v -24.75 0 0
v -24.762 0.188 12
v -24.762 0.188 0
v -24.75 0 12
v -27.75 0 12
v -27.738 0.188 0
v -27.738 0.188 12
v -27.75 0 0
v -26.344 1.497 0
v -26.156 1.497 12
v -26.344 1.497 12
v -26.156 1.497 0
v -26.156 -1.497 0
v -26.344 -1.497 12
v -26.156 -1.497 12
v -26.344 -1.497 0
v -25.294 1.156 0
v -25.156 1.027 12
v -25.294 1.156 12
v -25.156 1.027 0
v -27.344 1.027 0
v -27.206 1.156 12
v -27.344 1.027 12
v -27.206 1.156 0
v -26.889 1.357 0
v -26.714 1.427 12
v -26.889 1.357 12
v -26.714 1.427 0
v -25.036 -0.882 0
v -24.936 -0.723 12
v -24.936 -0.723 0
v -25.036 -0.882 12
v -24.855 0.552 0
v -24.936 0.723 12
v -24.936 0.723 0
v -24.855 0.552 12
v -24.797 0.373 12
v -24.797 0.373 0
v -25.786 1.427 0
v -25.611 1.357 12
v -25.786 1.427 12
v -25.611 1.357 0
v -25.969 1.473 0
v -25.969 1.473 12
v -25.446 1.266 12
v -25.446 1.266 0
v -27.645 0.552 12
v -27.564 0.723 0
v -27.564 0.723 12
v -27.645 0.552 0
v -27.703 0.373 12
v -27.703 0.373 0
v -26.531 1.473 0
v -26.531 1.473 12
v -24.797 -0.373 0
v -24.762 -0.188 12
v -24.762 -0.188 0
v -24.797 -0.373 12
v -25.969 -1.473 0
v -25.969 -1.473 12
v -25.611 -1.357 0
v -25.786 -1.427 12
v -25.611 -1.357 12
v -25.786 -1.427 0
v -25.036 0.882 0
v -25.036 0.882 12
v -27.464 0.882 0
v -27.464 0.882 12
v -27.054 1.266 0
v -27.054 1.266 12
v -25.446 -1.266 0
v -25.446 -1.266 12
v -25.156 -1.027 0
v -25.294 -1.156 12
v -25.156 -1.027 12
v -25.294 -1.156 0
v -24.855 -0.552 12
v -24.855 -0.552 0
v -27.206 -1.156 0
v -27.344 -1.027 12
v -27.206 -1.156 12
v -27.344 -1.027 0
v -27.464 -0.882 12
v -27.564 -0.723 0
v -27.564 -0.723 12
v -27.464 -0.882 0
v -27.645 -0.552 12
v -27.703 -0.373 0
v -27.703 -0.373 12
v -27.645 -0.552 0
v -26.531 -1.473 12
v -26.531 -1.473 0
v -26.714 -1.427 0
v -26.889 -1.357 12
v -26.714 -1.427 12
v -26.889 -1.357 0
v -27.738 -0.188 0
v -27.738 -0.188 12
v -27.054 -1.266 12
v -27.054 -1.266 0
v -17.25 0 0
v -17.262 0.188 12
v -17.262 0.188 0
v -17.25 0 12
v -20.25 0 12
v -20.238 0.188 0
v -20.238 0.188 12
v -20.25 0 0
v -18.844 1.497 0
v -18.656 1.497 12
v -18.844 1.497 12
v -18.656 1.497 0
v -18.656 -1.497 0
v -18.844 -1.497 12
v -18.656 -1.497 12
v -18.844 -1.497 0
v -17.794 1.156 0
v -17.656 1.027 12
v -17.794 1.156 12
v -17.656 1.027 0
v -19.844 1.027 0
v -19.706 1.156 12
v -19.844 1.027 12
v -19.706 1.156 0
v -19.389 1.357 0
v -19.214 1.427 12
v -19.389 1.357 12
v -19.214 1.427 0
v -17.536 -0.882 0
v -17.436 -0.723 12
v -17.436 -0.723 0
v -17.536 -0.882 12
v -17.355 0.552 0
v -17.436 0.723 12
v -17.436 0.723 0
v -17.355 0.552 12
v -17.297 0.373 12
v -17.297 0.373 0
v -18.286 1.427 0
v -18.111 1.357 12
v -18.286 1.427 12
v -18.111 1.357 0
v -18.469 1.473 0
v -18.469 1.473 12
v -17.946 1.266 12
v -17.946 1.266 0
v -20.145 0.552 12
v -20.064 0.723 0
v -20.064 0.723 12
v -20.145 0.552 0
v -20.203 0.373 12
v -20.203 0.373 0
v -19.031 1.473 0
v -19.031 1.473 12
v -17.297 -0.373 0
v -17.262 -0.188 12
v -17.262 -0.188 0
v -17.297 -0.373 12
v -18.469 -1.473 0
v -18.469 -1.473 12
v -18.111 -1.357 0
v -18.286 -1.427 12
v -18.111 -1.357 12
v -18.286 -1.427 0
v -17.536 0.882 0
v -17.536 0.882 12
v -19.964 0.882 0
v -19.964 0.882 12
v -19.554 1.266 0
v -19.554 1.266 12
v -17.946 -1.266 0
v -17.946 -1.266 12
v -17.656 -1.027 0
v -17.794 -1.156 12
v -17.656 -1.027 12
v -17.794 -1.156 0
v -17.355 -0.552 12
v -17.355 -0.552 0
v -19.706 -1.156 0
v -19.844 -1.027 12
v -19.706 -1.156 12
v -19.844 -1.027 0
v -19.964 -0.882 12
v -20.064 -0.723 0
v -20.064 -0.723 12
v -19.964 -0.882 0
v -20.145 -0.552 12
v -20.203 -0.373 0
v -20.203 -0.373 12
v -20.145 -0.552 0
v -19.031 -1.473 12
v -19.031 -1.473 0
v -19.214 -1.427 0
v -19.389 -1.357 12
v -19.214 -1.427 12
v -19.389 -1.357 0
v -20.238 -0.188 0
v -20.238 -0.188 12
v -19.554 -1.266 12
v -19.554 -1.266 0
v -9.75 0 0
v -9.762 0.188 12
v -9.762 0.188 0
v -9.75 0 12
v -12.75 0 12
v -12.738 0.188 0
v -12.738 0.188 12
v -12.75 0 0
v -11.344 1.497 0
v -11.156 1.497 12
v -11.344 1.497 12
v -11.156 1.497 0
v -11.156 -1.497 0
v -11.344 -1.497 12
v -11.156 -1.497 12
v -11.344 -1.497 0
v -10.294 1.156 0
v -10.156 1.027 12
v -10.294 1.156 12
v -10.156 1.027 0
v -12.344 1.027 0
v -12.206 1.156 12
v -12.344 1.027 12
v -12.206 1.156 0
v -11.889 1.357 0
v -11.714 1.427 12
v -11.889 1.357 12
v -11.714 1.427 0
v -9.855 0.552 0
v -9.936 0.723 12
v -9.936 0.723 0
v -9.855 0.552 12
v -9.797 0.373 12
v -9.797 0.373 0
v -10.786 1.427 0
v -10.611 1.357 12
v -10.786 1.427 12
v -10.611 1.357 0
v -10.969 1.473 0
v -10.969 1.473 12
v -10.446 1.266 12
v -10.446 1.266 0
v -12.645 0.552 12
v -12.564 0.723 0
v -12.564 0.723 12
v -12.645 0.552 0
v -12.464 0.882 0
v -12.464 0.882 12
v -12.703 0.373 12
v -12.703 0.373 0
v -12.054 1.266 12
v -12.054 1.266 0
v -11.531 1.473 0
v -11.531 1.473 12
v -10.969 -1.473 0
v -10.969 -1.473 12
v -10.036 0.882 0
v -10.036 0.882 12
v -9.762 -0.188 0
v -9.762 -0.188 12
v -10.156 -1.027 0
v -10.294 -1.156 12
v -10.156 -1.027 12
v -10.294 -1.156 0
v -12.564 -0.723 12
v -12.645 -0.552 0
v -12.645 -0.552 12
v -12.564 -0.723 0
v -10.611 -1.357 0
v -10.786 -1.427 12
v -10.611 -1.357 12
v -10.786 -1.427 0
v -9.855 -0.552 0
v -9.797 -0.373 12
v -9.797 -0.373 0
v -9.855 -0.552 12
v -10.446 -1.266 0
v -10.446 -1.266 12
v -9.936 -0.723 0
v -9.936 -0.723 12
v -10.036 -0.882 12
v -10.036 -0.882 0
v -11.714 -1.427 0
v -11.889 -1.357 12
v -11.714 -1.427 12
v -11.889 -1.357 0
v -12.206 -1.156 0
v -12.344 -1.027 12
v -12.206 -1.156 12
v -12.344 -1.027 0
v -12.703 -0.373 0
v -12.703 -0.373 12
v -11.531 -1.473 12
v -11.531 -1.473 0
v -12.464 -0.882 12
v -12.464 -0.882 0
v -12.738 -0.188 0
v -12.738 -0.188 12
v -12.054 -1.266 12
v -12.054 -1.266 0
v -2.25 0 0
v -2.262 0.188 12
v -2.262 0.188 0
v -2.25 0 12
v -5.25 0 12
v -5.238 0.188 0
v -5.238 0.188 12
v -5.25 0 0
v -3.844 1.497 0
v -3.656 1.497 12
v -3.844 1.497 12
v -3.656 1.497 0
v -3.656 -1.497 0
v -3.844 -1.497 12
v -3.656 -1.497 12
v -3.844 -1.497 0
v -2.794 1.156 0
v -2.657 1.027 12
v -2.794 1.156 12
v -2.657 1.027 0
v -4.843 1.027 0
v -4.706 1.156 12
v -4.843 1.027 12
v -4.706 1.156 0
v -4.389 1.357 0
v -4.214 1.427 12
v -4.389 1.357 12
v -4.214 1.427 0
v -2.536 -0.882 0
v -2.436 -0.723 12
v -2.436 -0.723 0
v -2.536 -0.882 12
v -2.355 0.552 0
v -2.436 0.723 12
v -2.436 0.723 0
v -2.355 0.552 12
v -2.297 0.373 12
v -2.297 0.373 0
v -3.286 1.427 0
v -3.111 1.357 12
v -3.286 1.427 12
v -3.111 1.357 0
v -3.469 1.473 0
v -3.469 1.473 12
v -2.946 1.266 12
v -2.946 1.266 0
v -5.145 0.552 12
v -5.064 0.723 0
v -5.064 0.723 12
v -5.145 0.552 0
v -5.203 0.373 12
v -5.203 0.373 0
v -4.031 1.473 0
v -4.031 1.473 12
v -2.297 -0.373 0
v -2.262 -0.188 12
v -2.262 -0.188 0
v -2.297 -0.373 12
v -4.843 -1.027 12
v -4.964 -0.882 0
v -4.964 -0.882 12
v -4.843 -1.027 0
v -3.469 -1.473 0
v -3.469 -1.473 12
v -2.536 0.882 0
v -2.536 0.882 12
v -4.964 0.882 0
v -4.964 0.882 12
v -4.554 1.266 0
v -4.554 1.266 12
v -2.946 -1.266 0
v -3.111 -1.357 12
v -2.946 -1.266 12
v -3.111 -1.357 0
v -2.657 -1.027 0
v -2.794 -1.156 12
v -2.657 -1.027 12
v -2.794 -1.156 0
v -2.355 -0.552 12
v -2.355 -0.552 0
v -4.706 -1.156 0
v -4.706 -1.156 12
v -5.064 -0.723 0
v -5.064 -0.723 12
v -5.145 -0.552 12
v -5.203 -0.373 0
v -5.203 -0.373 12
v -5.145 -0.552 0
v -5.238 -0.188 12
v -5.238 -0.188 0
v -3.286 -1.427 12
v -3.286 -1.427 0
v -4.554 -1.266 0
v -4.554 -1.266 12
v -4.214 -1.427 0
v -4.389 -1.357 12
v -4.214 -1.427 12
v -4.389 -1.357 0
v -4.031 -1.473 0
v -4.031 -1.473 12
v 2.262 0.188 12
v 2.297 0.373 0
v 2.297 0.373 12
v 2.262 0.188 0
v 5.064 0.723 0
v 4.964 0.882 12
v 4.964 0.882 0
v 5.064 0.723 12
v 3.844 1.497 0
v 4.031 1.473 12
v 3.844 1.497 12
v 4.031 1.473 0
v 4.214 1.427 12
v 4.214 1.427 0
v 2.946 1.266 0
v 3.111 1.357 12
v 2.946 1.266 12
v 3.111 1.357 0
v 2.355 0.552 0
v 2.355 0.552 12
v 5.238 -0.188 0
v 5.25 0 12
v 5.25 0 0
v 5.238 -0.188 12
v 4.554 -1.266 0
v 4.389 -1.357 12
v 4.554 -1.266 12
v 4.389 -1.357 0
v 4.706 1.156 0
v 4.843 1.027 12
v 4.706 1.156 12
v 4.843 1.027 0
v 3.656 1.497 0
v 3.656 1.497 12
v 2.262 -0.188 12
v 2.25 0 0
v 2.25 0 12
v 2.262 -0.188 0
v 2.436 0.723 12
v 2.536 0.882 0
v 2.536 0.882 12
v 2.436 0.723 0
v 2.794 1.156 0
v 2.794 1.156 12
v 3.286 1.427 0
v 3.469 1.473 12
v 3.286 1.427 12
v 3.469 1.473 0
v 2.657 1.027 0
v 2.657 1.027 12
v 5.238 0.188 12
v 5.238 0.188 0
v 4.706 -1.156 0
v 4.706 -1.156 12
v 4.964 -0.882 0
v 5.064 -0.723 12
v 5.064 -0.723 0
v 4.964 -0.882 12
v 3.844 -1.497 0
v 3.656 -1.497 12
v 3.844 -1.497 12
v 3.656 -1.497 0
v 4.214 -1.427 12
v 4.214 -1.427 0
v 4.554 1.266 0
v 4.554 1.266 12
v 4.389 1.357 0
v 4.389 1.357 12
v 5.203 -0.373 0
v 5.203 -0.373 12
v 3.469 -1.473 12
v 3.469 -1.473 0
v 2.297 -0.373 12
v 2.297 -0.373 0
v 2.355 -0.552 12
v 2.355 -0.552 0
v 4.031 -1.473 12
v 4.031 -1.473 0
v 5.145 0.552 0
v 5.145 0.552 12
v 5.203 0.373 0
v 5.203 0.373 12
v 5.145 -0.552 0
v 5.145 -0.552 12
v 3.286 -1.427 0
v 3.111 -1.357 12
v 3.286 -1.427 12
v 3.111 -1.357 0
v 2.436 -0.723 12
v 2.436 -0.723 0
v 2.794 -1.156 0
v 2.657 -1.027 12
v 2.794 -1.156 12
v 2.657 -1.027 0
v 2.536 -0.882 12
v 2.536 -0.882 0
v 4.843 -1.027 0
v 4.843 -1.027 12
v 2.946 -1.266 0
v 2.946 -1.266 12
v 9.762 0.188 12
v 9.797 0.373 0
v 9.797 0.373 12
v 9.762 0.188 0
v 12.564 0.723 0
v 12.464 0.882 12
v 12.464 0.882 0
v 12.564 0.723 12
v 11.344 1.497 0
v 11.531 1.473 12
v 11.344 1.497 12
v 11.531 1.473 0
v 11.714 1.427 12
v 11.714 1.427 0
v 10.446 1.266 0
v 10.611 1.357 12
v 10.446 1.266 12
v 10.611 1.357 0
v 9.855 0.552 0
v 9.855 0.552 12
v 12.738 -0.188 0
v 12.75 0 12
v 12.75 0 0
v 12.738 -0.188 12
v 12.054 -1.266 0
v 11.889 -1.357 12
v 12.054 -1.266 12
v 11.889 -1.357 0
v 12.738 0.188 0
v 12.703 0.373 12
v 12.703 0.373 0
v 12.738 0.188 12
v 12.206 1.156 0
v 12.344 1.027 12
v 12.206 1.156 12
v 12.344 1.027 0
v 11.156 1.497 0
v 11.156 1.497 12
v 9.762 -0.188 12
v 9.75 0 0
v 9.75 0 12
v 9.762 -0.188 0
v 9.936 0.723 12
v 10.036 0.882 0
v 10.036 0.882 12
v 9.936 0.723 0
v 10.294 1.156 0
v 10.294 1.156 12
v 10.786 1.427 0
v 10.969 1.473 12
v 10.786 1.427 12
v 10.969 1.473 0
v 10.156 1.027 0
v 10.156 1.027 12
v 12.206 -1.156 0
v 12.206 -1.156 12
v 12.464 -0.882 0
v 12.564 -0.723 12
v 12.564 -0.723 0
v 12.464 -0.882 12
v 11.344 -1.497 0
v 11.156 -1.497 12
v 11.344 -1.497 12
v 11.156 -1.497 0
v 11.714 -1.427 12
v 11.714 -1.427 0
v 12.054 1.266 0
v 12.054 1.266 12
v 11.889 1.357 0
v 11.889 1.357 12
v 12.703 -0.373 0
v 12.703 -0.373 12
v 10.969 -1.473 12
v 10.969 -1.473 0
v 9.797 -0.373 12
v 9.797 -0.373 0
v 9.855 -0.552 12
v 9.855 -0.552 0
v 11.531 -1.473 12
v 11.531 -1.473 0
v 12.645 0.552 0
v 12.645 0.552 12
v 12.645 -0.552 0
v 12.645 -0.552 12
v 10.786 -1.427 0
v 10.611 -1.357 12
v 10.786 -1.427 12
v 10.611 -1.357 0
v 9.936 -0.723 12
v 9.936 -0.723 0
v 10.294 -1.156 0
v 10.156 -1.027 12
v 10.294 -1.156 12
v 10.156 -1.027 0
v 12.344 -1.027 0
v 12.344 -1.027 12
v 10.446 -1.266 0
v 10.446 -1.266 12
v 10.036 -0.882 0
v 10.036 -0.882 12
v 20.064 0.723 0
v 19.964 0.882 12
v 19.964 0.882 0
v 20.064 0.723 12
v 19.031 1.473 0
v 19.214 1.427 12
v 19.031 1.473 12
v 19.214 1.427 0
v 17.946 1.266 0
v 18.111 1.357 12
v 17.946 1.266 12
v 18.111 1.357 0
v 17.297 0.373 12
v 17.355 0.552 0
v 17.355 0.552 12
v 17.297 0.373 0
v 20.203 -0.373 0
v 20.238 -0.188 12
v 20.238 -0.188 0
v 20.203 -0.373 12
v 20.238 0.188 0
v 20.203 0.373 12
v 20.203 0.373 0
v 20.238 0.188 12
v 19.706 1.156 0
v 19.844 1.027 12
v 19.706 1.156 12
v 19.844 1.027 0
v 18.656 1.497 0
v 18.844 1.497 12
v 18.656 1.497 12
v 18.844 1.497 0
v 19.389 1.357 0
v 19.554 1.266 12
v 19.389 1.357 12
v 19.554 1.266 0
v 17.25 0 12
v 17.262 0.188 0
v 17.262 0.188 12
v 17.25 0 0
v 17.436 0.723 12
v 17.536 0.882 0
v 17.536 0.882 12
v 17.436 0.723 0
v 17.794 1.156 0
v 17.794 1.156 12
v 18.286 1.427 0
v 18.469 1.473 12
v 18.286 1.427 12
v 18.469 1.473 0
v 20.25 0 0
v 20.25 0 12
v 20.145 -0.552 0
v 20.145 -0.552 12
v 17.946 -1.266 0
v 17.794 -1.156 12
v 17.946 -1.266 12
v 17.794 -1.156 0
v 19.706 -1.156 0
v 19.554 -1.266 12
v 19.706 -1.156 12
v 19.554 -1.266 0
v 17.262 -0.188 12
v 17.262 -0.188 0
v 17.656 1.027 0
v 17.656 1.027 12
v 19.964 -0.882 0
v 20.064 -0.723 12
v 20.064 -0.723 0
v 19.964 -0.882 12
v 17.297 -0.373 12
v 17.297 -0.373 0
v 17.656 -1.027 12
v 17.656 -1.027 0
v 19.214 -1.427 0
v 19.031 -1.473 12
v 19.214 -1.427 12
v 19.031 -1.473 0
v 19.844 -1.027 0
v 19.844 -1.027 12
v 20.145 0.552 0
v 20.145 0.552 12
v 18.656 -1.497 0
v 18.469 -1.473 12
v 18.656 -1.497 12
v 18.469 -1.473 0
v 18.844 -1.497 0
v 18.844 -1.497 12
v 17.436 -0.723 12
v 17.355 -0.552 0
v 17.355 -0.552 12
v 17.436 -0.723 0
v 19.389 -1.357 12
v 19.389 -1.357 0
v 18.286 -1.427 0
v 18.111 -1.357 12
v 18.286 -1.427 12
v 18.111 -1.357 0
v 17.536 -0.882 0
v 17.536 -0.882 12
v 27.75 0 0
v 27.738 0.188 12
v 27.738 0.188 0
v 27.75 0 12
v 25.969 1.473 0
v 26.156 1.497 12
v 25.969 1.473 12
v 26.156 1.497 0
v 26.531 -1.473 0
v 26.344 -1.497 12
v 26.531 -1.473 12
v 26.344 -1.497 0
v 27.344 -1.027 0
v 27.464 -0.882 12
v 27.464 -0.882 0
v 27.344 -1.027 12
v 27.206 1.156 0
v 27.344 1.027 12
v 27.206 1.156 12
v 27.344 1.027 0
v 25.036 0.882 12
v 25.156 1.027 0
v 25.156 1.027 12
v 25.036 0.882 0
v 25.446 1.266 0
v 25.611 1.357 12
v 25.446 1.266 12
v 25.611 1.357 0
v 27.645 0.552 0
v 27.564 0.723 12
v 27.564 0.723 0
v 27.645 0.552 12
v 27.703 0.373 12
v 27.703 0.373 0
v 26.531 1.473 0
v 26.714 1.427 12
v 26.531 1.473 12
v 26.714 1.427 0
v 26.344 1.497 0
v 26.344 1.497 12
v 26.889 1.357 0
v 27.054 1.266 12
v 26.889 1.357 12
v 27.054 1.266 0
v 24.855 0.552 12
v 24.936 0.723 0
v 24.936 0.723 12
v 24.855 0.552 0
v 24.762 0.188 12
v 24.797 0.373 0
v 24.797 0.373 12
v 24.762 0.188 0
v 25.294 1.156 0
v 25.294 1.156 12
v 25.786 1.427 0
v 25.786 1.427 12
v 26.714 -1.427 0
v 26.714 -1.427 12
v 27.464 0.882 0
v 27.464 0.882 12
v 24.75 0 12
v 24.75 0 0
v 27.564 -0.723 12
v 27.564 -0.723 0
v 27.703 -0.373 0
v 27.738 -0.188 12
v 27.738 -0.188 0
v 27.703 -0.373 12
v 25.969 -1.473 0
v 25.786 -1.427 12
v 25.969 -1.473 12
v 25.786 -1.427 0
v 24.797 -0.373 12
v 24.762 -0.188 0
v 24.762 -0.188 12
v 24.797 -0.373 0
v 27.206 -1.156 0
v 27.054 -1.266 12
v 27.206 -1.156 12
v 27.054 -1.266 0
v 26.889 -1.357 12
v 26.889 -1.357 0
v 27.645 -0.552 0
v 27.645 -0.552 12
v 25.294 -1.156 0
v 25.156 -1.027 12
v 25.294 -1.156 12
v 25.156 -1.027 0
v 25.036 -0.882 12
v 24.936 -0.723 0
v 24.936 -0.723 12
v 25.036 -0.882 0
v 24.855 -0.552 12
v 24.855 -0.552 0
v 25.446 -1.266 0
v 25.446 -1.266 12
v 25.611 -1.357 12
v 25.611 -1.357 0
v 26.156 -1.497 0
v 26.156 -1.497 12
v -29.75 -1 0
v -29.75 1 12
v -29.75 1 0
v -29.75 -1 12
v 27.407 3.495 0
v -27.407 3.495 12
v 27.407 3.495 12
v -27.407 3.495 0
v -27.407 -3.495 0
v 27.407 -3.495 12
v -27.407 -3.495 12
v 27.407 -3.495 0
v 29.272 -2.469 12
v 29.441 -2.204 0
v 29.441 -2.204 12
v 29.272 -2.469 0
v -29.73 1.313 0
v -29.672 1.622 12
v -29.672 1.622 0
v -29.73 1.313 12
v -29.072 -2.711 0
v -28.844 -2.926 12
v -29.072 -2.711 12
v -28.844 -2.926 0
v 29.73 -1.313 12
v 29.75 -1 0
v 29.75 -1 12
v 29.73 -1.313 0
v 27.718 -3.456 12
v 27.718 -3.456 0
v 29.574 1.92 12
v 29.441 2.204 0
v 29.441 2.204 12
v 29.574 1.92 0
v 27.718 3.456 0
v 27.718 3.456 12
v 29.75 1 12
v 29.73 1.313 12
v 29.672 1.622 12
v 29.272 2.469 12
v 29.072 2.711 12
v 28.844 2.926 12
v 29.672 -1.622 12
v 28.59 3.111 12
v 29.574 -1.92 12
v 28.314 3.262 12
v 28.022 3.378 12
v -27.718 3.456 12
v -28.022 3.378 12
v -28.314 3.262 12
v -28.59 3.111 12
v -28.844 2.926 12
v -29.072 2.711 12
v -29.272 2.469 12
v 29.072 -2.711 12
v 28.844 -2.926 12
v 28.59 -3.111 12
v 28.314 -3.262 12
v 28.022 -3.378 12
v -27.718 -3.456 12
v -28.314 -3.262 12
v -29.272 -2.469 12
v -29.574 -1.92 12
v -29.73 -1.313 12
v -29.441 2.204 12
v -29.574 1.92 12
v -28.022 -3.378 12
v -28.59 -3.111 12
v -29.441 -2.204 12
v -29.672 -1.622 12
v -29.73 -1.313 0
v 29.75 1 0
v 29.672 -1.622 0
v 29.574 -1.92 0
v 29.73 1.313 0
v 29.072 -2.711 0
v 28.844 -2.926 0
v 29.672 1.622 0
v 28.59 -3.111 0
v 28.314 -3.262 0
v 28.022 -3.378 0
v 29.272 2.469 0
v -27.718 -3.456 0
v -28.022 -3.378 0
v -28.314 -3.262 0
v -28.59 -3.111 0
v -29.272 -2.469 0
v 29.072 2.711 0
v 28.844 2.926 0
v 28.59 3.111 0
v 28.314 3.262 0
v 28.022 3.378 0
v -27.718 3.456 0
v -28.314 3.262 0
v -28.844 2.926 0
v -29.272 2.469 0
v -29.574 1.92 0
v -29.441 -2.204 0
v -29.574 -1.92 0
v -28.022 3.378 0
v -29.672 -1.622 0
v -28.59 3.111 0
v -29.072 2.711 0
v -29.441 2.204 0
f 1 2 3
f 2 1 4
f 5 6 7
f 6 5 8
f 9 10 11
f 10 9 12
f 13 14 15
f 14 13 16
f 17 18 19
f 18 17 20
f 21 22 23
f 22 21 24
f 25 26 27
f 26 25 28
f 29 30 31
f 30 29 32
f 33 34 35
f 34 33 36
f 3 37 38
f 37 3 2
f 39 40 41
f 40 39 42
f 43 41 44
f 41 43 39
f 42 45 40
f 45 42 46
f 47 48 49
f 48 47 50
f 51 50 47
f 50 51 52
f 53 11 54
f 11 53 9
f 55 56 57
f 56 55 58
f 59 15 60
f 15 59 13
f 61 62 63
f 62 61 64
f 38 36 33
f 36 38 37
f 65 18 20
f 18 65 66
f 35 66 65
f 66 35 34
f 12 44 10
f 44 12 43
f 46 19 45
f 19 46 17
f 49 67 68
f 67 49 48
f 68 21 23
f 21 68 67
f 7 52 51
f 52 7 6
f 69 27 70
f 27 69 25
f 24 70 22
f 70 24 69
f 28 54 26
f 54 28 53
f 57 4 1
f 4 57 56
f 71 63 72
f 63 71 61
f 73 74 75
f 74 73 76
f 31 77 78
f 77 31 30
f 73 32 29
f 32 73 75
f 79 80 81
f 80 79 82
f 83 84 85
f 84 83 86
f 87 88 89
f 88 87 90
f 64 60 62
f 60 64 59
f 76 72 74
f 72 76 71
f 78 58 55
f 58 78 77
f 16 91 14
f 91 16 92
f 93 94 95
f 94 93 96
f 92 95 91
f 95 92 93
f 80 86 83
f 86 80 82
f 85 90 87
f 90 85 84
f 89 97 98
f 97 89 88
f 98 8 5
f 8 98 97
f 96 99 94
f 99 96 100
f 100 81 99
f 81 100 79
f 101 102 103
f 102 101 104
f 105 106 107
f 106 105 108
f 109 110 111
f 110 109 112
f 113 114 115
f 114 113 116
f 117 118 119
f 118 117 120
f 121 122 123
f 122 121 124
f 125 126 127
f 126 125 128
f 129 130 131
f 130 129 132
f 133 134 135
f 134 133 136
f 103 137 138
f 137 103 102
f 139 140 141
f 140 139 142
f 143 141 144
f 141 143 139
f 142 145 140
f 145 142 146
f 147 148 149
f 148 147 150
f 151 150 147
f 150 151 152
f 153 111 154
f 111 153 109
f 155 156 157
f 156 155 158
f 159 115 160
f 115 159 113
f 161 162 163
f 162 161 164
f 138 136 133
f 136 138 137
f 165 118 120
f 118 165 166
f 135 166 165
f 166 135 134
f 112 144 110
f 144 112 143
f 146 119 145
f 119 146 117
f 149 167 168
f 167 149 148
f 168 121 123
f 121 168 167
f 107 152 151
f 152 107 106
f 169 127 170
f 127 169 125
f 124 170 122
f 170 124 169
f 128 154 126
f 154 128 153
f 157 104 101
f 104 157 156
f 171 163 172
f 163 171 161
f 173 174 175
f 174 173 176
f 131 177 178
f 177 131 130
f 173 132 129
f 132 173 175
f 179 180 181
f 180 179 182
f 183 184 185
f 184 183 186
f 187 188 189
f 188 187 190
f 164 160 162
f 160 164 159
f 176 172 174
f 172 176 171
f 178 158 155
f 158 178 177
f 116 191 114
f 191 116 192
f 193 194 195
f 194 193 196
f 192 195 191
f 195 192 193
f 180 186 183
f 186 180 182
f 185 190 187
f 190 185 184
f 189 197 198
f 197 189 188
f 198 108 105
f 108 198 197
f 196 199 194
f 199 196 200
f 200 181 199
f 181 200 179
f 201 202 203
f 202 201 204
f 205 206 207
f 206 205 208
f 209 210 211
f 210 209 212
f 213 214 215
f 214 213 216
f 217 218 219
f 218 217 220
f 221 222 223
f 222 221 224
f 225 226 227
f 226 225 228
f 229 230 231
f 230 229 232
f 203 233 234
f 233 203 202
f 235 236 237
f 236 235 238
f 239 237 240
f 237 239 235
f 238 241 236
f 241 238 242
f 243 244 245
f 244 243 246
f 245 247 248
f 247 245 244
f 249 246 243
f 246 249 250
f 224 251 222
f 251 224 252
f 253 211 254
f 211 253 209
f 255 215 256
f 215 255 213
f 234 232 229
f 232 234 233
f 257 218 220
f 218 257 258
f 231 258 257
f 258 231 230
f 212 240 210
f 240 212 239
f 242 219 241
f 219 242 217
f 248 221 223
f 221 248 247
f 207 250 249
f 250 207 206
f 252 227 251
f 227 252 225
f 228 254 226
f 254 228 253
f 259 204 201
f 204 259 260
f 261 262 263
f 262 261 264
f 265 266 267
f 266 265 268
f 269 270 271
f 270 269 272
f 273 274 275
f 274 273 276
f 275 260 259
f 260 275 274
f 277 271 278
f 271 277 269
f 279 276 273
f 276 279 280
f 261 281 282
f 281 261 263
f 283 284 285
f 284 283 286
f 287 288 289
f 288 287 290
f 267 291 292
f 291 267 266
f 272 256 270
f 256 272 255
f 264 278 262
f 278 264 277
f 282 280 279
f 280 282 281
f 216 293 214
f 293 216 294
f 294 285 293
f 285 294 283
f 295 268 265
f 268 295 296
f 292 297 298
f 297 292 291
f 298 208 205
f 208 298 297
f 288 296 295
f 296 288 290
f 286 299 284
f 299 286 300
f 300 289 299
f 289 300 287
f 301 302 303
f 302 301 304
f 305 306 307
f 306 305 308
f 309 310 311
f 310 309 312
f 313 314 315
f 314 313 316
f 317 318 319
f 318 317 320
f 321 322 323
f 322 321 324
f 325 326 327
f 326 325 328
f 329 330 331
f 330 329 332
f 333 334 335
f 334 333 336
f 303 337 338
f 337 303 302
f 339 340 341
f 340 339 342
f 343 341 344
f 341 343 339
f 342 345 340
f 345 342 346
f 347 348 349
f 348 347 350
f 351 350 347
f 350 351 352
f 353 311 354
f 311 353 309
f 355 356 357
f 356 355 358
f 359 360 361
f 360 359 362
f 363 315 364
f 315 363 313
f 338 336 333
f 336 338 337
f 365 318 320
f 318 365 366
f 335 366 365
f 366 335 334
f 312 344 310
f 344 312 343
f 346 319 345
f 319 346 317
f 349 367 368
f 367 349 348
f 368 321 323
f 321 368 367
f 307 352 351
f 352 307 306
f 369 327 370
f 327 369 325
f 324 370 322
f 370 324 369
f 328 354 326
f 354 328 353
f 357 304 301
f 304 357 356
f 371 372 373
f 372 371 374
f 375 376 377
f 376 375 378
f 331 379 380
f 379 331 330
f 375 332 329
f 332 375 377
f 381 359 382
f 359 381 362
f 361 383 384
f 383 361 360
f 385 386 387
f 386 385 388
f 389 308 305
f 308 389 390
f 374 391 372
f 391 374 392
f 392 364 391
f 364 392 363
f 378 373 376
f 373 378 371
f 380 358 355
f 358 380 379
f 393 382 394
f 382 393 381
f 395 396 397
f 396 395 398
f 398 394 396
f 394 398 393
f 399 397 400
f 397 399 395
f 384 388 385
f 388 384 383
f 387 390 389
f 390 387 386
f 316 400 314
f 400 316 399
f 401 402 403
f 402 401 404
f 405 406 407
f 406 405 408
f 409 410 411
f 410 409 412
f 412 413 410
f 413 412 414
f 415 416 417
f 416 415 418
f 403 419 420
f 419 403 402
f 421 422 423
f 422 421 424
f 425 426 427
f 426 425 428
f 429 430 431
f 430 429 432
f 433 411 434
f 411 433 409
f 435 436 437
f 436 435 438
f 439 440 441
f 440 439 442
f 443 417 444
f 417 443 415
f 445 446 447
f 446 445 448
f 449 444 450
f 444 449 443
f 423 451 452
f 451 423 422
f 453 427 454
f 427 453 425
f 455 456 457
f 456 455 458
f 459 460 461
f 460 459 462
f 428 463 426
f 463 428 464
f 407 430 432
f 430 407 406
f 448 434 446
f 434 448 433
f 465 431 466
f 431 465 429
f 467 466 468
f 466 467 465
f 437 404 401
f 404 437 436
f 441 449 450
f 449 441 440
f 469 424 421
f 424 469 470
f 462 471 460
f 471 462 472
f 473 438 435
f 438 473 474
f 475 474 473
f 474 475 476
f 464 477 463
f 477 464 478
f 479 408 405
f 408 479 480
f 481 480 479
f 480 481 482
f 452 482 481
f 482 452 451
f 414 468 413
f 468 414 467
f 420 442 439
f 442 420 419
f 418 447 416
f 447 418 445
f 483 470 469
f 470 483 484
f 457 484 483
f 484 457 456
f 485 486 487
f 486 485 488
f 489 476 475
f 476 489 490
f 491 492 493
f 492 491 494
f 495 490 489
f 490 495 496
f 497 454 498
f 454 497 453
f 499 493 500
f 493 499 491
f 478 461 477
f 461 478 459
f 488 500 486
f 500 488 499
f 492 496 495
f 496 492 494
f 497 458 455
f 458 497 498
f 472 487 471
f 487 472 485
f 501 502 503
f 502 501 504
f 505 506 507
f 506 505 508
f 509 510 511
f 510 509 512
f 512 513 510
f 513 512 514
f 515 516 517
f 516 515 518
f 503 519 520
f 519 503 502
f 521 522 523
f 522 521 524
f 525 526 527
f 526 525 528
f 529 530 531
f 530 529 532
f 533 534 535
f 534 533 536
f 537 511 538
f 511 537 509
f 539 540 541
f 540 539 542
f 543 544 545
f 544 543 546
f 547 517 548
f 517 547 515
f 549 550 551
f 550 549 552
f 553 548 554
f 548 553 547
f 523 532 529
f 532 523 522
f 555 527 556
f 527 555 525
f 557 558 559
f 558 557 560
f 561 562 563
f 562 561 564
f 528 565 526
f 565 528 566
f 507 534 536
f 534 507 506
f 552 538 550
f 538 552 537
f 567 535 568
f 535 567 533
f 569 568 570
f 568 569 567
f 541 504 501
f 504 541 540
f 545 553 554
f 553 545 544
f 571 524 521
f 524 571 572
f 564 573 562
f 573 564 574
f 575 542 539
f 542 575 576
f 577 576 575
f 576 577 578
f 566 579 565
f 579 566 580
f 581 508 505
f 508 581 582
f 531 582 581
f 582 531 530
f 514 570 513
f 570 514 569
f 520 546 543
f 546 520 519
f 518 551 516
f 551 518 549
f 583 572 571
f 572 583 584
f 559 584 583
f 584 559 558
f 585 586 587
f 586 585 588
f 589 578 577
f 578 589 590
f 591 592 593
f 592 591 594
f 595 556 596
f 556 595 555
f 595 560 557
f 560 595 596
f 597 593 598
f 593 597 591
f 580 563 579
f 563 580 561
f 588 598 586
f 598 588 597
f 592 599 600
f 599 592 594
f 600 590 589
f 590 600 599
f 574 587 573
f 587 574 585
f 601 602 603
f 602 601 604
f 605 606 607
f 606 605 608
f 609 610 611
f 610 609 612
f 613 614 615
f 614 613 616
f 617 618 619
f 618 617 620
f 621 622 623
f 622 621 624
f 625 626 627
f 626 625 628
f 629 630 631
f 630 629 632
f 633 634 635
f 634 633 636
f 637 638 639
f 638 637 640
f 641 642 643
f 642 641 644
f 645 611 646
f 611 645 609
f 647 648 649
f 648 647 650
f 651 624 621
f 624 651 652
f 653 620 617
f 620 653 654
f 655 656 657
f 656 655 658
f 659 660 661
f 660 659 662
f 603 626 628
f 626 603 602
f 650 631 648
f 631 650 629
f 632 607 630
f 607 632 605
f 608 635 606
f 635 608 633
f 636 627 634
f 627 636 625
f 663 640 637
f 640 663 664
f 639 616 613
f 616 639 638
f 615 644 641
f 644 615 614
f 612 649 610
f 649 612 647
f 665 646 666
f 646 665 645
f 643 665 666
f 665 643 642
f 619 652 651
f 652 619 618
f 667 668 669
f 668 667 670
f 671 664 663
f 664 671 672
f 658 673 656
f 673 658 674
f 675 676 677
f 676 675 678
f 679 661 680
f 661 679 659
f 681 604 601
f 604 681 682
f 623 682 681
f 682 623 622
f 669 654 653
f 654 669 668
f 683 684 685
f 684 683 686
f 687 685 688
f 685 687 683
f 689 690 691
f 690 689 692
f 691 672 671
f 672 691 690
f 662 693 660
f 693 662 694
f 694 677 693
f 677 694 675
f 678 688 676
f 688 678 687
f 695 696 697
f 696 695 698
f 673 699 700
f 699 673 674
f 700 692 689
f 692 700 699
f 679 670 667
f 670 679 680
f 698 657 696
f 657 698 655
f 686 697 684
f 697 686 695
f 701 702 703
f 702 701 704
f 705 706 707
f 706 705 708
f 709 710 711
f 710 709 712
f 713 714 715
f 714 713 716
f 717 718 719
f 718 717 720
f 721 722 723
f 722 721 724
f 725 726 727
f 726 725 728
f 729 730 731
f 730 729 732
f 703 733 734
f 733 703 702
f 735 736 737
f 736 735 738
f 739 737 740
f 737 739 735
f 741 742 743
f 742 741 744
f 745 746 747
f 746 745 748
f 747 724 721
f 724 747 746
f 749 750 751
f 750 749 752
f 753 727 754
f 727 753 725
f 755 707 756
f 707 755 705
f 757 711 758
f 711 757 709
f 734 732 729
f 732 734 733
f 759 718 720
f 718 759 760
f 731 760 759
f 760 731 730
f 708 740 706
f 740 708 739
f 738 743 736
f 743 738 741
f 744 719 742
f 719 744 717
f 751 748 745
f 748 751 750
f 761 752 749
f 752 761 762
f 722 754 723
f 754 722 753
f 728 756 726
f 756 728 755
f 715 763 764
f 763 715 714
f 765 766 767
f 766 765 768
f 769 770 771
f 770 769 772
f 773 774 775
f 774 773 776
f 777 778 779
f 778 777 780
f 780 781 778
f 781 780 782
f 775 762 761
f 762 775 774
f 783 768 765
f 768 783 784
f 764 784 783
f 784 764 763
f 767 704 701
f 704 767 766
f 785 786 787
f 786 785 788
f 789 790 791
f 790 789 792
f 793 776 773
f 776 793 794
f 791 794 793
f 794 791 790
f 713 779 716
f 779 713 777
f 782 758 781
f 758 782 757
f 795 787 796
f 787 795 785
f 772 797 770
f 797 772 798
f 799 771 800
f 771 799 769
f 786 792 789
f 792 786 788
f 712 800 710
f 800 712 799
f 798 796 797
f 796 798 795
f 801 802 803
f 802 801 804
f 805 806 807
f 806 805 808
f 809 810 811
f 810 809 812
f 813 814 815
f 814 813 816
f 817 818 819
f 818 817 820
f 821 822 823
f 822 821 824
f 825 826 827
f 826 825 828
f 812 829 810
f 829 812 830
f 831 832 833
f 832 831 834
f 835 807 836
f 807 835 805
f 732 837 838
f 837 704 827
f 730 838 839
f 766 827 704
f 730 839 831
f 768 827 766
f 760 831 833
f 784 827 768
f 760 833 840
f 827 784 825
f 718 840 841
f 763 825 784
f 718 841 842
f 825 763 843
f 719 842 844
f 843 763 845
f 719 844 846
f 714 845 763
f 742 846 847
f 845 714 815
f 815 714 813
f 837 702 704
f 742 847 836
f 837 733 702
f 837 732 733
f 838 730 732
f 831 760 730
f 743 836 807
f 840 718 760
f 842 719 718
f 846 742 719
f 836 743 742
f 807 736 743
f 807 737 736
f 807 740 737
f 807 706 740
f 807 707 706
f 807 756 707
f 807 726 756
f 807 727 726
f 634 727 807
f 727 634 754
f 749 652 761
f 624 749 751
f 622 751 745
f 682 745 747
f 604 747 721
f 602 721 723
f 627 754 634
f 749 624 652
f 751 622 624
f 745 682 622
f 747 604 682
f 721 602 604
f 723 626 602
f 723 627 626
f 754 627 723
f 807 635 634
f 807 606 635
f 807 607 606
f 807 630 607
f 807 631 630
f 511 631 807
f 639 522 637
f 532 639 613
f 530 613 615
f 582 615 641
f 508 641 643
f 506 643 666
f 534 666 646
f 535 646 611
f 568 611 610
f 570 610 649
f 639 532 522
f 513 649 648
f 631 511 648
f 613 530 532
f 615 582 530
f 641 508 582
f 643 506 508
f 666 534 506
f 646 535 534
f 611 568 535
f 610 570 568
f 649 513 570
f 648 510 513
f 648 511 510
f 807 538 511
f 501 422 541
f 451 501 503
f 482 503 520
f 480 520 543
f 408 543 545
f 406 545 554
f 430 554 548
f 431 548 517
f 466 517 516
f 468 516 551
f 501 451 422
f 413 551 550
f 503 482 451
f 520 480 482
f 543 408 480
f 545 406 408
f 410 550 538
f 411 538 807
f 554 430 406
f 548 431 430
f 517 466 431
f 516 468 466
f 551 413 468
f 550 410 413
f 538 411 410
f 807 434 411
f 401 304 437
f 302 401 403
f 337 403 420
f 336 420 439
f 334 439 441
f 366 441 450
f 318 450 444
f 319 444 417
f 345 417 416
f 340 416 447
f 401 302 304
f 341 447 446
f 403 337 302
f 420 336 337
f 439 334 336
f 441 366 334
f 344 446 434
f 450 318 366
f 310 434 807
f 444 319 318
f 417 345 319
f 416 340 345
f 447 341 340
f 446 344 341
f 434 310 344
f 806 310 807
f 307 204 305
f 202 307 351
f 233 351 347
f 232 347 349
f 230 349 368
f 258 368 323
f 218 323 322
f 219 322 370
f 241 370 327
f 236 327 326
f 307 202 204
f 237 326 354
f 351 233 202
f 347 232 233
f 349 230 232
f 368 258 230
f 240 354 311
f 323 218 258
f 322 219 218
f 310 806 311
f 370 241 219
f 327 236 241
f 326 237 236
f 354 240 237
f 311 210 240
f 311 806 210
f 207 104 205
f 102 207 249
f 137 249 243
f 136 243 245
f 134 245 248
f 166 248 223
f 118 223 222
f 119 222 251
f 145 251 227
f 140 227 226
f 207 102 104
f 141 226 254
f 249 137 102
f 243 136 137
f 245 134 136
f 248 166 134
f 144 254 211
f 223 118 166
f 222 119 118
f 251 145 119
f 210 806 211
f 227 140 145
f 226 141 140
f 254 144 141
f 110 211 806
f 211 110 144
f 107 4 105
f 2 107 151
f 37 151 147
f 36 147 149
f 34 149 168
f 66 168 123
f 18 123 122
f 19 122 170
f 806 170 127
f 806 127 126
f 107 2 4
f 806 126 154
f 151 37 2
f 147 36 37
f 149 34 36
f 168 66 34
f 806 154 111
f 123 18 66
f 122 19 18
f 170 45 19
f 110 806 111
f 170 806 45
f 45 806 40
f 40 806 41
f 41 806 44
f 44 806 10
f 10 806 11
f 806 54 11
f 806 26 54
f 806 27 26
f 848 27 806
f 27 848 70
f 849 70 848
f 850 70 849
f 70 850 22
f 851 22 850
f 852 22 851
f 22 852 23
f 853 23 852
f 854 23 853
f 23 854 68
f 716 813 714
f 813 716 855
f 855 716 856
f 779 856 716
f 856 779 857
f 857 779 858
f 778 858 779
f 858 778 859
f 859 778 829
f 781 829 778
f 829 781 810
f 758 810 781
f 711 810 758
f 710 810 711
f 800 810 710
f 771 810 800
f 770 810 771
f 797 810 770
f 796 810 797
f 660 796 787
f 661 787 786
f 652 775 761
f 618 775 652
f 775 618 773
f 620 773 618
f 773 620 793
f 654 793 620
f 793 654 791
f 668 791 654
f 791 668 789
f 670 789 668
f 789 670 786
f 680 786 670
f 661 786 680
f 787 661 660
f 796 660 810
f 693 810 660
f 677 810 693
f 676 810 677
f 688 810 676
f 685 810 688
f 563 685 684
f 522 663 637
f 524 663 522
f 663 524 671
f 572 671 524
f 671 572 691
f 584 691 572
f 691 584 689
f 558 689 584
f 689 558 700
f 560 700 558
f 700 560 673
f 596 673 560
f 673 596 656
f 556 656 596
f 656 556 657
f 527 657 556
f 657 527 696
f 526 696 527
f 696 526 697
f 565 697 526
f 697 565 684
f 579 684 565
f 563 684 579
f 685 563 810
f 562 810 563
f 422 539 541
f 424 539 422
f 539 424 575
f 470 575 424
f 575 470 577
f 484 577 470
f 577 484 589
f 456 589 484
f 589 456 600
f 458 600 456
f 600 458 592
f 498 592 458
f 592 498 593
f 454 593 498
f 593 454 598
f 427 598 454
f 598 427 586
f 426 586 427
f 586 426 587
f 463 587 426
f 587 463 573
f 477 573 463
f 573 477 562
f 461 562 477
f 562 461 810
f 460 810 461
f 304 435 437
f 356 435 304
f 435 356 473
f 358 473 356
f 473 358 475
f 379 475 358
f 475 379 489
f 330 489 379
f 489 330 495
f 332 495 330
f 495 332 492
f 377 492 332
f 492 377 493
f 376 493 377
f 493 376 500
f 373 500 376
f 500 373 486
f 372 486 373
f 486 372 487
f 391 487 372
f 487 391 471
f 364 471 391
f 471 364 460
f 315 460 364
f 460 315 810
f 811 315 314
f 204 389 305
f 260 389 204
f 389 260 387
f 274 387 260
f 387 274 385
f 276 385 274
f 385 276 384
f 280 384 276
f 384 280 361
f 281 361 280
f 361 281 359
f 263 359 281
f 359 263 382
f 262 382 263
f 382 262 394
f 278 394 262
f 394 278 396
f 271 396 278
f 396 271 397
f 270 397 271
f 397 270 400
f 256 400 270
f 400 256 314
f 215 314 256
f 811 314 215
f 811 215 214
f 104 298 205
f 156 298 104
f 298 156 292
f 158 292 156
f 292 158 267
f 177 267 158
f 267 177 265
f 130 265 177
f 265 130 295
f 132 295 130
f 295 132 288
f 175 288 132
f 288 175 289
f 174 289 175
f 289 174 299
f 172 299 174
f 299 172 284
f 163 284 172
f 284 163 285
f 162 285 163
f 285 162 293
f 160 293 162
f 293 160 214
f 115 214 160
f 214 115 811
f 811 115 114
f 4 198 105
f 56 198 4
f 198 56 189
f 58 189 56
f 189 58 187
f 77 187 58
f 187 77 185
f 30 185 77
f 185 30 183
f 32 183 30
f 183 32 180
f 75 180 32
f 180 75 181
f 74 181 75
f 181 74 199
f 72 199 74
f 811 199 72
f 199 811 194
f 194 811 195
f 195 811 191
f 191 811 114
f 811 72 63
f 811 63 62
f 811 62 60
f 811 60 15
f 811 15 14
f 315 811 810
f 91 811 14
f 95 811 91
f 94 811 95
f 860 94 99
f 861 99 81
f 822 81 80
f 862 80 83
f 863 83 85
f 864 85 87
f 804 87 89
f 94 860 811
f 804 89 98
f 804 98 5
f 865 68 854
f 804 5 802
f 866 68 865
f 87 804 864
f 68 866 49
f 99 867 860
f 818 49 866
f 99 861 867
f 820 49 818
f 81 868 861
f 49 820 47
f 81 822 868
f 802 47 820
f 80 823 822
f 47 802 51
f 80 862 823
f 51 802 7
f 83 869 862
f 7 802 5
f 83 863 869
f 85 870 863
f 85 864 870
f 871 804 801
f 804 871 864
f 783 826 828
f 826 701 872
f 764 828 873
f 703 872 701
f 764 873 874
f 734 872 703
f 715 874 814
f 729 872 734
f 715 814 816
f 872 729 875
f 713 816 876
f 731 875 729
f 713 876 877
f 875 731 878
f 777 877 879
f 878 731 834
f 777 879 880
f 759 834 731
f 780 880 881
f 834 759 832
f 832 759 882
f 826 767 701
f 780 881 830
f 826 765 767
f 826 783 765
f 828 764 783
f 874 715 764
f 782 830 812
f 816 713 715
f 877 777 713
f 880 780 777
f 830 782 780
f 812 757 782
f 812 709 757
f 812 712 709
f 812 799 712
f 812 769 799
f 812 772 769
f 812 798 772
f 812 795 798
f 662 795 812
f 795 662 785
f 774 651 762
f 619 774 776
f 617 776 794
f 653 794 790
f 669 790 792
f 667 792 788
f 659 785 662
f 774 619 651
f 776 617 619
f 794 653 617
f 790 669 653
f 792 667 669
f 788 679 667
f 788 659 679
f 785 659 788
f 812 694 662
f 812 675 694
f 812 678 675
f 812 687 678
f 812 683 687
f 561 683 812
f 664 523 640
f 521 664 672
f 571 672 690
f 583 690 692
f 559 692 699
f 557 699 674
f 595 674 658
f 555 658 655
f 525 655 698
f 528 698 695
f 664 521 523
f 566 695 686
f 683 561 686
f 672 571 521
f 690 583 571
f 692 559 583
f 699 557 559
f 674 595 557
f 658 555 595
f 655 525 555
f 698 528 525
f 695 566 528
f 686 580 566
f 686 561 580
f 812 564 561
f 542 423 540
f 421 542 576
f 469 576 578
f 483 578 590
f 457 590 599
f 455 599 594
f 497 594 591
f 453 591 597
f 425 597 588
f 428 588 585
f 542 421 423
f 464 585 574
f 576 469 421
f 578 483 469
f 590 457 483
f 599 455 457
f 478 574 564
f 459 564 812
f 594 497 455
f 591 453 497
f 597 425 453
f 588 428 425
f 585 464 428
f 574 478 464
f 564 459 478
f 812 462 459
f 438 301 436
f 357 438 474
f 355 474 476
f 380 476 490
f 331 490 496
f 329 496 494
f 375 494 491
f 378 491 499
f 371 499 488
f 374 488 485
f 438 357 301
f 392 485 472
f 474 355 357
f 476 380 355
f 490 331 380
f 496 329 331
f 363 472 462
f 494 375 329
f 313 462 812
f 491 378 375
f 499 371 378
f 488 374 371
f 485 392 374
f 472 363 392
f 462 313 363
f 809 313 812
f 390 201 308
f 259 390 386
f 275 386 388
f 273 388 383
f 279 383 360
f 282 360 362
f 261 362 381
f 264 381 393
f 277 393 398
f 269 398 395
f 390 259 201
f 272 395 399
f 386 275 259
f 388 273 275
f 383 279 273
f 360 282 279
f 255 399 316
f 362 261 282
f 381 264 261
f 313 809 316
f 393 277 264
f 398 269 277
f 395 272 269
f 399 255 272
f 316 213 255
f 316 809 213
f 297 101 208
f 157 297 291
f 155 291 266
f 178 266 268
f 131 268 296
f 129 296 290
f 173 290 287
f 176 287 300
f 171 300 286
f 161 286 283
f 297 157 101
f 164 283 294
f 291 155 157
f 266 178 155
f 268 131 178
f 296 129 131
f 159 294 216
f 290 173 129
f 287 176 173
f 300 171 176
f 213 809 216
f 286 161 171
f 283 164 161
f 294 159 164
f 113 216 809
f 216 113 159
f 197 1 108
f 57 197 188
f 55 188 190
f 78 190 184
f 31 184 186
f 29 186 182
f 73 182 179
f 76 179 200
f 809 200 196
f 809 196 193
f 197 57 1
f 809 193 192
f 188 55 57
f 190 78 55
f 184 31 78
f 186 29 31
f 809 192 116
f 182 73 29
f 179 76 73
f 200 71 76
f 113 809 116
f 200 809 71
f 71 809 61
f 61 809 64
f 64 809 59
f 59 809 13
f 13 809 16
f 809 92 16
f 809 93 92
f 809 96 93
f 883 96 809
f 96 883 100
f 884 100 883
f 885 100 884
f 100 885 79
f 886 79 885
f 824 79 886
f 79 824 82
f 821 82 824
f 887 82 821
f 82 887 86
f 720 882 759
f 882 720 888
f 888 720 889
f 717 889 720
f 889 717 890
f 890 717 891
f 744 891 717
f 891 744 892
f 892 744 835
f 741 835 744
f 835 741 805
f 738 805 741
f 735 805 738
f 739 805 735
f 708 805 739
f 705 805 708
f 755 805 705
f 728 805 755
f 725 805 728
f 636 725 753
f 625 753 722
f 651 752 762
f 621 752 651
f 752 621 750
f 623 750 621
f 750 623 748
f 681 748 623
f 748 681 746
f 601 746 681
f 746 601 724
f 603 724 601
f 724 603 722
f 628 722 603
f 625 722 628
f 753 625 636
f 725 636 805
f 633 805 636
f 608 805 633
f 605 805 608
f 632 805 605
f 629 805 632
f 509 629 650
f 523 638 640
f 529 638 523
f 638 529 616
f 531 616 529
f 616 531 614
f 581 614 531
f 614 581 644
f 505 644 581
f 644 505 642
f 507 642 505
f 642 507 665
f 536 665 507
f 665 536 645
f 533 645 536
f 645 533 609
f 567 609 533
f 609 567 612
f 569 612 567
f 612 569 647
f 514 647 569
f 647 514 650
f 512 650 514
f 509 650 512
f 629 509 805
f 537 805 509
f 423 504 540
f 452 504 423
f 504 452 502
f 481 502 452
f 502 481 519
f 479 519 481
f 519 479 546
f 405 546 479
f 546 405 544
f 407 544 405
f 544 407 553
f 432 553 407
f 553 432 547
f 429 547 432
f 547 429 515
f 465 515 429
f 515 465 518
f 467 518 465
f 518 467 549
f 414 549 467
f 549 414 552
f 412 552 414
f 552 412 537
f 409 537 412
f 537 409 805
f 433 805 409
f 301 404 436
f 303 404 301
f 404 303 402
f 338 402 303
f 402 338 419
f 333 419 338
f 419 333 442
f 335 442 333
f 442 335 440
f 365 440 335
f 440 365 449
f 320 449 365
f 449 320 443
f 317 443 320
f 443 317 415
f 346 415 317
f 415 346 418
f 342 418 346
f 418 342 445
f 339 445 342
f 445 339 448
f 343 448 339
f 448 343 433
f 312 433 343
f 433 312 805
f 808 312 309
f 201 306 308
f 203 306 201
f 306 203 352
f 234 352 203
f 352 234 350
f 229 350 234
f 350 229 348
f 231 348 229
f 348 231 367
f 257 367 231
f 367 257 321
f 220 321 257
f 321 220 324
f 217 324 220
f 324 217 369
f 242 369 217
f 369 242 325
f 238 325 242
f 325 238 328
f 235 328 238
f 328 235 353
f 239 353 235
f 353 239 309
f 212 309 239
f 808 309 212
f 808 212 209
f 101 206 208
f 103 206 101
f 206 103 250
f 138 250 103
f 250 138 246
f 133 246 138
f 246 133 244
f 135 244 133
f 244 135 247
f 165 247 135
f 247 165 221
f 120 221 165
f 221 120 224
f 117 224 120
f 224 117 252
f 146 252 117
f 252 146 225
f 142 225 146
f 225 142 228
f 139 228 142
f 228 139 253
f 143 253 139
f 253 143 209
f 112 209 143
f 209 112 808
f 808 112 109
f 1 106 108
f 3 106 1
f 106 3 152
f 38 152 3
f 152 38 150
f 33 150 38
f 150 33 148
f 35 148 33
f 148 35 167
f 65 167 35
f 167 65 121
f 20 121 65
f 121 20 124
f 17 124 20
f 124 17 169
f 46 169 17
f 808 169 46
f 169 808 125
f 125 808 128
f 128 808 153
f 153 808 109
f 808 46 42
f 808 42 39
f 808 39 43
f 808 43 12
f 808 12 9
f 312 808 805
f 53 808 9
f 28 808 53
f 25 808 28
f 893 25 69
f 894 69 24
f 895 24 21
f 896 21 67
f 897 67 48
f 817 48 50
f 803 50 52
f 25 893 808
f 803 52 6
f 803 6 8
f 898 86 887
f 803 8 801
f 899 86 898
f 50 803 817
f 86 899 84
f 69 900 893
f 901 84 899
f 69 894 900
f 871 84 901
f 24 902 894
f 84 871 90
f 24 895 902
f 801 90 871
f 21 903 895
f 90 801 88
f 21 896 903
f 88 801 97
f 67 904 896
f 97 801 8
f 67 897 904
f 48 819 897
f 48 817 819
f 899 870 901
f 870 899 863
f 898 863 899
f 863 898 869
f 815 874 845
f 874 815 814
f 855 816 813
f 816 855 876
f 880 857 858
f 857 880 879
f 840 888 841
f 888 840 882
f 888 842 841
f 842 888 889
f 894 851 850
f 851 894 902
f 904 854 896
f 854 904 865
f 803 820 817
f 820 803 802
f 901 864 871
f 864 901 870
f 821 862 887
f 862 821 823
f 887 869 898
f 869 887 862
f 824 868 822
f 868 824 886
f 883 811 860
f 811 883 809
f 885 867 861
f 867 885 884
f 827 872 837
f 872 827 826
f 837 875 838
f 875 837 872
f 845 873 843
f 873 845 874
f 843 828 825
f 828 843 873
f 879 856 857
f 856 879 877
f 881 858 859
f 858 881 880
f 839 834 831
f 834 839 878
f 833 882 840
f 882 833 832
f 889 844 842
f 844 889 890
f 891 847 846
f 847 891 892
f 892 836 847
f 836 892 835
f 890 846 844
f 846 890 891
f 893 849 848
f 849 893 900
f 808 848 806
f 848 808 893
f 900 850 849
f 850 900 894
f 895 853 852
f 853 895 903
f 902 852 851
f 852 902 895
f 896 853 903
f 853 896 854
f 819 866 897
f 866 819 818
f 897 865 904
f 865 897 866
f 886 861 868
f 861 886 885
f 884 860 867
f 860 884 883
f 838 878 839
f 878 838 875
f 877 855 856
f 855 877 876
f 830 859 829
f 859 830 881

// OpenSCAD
$fn = 50;


difference() {
	union() {
		translate(v = [0, 0, 0]) {
			rotate(a = [0, 0, 0]) {
				hull() {
					translate(v = [-27.2500000000, 1.0000000000, 0]) {
						rotate(a = [0, 0, 0]) {
							translate(v = [0, 0, 0]) {
								rotate(a = [0, 0, 0]) {
									cylinder(h = 12, r = 2.5000000000);
								}
							}
						}
					}
					translate(v = [27.2500000000, 1.0000000000, 0]) {
						rotate(a = [0, 0, 0]) {
							translate(v = [0, 0, 0]) {
								rotate(a = [0, 0, 0]) {
									cylinder(h = 12, r = 2.5000000000);
								}
							}
						}
					}
					translate(v = [-27.2500000000, -1.0000000000, 0]) {
						rotate(a = [0, 0, 0]) {
							translate(v = [0, 0, 0]) {
								rotate(a = [0, 0, 0]) {
									cylinder(h = 12, r = 2.5000000000);
								}
							}
						}
					}
					translate(v = [27.2500000000, -1.0000000000, 0]) {
						rotate(a = [0, 0, 0]) {
							translate(v = [0, 0, 0]) {
								rotate(a = [0, 0, 0]) {
									cylinder(h = 12, r = 2.5000000000);
								}
							}
						}
					}
				}
			}
		}
	}
	union() {
		translate(v = [-26.2500000000, 0.0000000000, 0]) {
			rotate(a = [0, 0, 0]) {
				translate(v = [0, 0, -50]) {
					rotate(a = [0, 0, 0]) {
						cylinder(h = 100, r = 1.5000000000);
					}
				}
			}
		}
		translate(v = [-18.7500000000, 0.0000000000, 0]) {
			rotate(a = [0, 0, 0]) {
				translate(v = [0, 0, -50]) {
					rotate(a = [0, 0, 0]) {
						cylinder(h = 100, r = 1.5000000000);
					}
				}
			}
		}
		translate(v = [-11.2500000000, 0.0000000000, 0]) {
			rotate(a = [0, 0, 0]) {
				translate(v = [0, 0, -50]) {
					rotate(a = [0, 0, 0]) {
						cylinder(h = 100, r = 1.5000000000);
					}
				}
			}
		}
		translate(v = [-3.7500000000, 0.0000000000, 0]) {
			rotate(a = [0, 0, 0]) {
				translate(v = [0, 0, -50]) {
					rotate(a = [0, 0, 0]) {
						cylinder(h = 100, r = 1.5000000000);
					}
				}
			}
		}
		translate(v = [3.7500000000, 0.0000000000, 0]) {
			rotate(a = [0, 0, 0]) {
				translate(v = [0, 0, -50]) {
					rotate(a = [0, 0, 0]) {
						cylinder(h = 100, r = 1.5000000000);
					}
				}
			}
		}
		translate(v = [11.2500000000, 0.0000000000, 0]) {
			rotate(a = [0, 0, 0]) {
				translate(v = [0, 0, -50]) {
					rotate(a = [0, 0, 0]) {
						cylinder(h = 100, r = 1.5000000000);
					}
				}
			}
		}
		translate(v = [18.7500000000, 0.0000000000, 0]) {
			rotate(a = [0, 0, 0]) {
				translate(v = [0, 0, -50]) {
					rotate(a = [0, 0, 0]) {
						cylinder(h = 100, r = 1.5000000000);
					}
				}
			}
		}
		translate(v = [26.2500000000, 0.0000000000, 0]) {
			rotate(a = [0, 0, 0]) {
				translate(v = [0, 0, -50]) {
					rotate(a = [0, 0, 0]) {
						cylinder(h = 100, r = 1.5000000000);
					}
				}
			}
		}
	}
}
